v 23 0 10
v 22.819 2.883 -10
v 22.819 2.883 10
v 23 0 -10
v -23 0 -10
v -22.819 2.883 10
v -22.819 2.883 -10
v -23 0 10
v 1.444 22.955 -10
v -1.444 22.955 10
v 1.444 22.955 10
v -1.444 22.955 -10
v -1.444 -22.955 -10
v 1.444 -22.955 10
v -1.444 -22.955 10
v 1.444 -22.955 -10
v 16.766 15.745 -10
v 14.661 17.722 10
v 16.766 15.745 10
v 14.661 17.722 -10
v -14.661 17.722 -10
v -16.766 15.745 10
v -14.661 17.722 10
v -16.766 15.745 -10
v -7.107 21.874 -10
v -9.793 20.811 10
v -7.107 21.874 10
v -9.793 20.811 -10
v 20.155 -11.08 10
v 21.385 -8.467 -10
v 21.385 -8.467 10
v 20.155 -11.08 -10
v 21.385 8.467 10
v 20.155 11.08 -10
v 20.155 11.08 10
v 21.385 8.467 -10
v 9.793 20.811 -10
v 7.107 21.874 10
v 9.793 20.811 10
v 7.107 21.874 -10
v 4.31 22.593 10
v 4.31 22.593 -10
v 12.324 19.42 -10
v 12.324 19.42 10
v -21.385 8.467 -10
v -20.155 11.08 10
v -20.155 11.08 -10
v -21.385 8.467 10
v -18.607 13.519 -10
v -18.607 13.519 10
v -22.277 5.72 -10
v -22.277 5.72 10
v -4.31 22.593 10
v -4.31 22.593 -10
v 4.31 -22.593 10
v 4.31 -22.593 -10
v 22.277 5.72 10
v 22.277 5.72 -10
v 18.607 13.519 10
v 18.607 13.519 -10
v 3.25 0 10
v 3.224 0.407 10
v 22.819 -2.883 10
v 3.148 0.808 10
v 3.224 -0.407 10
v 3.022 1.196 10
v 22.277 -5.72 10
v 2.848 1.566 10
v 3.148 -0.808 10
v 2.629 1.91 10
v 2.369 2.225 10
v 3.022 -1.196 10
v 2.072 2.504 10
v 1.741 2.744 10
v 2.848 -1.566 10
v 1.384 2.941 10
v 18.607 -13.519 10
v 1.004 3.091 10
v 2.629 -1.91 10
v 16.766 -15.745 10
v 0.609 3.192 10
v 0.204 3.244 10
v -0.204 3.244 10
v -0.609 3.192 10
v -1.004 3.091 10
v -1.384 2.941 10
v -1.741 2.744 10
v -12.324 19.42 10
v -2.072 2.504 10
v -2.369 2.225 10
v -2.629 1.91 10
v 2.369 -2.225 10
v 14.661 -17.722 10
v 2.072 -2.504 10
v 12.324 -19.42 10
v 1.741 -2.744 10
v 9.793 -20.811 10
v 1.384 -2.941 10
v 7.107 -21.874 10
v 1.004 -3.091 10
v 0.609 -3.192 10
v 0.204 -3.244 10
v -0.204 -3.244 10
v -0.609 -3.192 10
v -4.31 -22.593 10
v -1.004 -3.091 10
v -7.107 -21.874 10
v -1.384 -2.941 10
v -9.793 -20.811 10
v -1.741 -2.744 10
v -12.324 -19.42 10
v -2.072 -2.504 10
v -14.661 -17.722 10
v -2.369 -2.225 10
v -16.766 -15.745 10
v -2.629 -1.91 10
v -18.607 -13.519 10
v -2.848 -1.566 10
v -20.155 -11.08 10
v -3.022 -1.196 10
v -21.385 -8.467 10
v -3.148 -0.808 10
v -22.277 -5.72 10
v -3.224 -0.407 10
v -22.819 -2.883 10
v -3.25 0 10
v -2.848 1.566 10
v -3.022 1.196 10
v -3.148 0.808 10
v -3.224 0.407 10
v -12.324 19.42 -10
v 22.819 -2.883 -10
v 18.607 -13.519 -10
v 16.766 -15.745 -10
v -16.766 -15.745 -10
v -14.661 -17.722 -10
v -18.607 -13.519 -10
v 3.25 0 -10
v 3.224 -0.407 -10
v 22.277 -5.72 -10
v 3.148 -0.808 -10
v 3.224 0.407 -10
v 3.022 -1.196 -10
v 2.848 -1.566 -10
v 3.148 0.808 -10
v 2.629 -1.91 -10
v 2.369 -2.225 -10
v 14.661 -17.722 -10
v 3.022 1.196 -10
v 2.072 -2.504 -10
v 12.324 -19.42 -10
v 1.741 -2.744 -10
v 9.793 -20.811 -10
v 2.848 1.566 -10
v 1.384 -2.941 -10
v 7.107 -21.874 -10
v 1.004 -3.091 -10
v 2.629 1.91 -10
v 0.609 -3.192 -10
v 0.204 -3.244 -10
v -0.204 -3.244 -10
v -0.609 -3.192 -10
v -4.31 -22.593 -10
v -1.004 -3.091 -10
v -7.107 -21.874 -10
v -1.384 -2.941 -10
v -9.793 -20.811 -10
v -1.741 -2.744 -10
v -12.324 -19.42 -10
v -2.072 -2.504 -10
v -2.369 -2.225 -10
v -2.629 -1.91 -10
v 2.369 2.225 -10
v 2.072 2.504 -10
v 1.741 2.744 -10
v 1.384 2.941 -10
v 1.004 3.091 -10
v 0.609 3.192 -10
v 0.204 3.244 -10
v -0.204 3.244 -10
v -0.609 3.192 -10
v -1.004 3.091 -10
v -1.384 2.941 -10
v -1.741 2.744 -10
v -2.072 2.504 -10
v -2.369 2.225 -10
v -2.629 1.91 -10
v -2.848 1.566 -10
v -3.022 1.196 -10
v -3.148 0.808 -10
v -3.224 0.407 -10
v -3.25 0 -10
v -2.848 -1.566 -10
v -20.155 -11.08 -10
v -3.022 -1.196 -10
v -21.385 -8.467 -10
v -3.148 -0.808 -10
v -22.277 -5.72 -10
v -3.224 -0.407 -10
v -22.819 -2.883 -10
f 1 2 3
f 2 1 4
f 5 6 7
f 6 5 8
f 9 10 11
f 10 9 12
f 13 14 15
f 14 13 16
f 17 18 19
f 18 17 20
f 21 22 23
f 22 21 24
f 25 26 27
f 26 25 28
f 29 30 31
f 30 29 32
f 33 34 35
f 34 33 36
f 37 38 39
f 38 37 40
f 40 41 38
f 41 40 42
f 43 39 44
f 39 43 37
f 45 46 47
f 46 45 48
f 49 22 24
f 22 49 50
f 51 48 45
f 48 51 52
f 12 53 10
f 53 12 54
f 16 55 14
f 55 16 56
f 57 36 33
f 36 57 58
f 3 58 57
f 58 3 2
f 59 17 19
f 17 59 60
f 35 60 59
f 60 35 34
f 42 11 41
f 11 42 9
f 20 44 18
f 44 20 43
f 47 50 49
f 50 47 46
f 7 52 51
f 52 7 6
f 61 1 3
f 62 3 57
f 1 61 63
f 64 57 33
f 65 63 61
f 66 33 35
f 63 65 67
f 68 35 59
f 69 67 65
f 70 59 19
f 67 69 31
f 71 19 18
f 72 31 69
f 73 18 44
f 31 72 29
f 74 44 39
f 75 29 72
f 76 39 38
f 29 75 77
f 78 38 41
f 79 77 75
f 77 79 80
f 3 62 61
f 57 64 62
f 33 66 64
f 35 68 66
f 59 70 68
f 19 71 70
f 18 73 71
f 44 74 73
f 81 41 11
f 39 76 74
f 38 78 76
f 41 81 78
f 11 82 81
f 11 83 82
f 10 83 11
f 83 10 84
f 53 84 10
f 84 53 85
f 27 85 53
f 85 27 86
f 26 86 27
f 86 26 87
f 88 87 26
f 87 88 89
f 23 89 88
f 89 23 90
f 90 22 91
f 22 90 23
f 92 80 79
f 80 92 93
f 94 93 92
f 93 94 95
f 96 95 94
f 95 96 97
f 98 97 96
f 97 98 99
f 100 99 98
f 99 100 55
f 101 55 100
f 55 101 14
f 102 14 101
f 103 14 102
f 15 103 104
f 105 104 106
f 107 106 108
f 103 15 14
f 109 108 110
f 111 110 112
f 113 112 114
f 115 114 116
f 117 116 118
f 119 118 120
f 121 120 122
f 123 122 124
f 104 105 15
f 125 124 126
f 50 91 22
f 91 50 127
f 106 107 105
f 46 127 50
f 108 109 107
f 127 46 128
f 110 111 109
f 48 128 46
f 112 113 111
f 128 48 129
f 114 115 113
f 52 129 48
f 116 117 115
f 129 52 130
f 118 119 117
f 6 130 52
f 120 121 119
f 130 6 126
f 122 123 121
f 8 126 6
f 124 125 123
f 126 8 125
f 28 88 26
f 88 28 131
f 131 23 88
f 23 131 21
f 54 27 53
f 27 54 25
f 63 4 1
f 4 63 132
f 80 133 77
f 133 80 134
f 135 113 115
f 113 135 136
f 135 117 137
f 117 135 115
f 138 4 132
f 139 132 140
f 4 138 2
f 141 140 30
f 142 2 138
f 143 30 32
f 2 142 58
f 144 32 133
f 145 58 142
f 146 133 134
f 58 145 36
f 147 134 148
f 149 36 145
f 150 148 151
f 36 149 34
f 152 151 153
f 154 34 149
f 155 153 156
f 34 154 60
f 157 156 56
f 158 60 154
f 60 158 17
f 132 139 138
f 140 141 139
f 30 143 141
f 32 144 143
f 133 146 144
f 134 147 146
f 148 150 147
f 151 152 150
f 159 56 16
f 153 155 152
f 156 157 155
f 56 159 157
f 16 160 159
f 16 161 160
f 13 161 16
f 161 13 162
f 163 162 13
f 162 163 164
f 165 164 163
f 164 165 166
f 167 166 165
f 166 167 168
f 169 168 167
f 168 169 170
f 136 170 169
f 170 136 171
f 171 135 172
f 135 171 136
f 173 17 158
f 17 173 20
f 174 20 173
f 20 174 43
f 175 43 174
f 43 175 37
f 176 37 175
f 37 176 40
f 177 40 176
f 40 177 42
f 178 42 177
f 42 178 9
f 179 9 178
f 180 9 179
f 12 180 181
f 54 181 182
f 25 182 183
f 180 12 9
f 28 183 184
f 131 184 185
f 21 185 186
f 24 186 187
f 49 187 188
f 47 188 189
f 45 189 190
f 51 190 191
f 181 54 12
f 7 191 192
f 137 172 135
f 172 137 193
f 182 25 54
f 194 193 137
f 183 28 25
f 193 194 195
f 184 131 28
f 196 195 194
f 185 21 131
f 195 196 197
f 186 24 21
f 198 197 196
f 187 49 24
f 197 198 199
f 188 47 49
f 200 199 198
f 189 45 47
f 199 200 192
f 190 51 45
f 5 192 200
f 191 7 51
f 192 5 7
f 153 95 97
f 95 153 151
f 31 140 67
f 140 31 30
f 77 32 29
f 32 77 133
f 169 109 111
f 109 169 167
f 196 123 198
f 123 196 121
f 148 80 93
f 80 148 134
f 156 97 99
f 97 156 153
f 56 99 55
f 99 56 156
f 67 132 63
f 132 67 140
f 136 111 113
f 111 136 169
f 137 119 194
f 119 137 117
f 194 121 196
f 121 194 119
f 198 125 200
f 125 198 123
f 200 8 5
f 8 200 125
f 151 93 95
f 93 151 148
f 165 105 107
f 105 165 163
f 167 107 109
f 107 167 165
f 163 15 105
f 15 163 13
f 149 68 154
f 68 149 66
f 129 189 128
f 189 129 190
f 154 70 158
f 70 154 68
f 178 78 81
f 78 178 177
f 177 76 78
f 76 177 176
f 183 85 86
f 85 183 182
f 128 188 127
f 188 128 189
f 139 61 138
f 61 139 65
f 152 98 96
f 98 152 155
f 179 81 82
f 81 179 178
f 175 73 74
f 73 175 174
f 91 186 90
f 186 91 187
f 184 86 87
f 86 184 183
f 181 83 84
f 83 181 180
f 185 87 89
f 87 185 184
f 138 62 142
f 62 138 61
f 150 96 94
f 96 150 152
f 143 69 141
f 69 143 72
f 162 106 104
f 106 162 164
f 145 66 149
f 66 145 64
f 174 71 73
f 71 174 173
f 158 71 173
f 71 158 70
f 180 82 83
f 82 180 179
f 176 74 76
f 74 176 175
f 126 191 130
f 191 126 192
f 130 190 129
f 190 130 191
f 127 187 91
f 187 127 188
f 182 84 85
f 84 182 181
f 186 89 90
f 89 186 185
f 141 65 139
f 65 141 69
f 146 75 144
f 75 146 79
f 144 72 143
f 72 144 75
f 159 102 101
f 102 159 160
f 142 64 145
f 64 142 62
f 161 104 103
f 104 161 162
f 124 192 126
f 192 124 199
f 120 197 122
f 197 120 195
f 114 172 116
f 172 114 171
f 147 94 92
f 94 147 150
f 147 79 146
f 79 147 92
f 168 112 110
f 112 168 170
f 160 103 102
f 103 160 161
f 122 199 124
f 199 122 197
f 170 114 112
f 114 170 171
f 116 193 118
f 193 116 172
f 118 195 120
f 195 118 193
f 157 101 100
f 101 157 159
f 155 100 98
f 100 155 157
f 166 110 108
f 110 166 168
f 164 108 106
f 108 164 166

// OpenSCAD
$fn = 50;


difference() {
	union() {
		translate(v = [0, 0, -10.0000000000]) {
			cylinder(h = 20, r = 23.0000000000);
		}
	}
	union() {
		translate(v = [0, 0, -100.0000000000]) {
			cylinder(h = 200, r = 3.2500000000);
		}
	}
}
